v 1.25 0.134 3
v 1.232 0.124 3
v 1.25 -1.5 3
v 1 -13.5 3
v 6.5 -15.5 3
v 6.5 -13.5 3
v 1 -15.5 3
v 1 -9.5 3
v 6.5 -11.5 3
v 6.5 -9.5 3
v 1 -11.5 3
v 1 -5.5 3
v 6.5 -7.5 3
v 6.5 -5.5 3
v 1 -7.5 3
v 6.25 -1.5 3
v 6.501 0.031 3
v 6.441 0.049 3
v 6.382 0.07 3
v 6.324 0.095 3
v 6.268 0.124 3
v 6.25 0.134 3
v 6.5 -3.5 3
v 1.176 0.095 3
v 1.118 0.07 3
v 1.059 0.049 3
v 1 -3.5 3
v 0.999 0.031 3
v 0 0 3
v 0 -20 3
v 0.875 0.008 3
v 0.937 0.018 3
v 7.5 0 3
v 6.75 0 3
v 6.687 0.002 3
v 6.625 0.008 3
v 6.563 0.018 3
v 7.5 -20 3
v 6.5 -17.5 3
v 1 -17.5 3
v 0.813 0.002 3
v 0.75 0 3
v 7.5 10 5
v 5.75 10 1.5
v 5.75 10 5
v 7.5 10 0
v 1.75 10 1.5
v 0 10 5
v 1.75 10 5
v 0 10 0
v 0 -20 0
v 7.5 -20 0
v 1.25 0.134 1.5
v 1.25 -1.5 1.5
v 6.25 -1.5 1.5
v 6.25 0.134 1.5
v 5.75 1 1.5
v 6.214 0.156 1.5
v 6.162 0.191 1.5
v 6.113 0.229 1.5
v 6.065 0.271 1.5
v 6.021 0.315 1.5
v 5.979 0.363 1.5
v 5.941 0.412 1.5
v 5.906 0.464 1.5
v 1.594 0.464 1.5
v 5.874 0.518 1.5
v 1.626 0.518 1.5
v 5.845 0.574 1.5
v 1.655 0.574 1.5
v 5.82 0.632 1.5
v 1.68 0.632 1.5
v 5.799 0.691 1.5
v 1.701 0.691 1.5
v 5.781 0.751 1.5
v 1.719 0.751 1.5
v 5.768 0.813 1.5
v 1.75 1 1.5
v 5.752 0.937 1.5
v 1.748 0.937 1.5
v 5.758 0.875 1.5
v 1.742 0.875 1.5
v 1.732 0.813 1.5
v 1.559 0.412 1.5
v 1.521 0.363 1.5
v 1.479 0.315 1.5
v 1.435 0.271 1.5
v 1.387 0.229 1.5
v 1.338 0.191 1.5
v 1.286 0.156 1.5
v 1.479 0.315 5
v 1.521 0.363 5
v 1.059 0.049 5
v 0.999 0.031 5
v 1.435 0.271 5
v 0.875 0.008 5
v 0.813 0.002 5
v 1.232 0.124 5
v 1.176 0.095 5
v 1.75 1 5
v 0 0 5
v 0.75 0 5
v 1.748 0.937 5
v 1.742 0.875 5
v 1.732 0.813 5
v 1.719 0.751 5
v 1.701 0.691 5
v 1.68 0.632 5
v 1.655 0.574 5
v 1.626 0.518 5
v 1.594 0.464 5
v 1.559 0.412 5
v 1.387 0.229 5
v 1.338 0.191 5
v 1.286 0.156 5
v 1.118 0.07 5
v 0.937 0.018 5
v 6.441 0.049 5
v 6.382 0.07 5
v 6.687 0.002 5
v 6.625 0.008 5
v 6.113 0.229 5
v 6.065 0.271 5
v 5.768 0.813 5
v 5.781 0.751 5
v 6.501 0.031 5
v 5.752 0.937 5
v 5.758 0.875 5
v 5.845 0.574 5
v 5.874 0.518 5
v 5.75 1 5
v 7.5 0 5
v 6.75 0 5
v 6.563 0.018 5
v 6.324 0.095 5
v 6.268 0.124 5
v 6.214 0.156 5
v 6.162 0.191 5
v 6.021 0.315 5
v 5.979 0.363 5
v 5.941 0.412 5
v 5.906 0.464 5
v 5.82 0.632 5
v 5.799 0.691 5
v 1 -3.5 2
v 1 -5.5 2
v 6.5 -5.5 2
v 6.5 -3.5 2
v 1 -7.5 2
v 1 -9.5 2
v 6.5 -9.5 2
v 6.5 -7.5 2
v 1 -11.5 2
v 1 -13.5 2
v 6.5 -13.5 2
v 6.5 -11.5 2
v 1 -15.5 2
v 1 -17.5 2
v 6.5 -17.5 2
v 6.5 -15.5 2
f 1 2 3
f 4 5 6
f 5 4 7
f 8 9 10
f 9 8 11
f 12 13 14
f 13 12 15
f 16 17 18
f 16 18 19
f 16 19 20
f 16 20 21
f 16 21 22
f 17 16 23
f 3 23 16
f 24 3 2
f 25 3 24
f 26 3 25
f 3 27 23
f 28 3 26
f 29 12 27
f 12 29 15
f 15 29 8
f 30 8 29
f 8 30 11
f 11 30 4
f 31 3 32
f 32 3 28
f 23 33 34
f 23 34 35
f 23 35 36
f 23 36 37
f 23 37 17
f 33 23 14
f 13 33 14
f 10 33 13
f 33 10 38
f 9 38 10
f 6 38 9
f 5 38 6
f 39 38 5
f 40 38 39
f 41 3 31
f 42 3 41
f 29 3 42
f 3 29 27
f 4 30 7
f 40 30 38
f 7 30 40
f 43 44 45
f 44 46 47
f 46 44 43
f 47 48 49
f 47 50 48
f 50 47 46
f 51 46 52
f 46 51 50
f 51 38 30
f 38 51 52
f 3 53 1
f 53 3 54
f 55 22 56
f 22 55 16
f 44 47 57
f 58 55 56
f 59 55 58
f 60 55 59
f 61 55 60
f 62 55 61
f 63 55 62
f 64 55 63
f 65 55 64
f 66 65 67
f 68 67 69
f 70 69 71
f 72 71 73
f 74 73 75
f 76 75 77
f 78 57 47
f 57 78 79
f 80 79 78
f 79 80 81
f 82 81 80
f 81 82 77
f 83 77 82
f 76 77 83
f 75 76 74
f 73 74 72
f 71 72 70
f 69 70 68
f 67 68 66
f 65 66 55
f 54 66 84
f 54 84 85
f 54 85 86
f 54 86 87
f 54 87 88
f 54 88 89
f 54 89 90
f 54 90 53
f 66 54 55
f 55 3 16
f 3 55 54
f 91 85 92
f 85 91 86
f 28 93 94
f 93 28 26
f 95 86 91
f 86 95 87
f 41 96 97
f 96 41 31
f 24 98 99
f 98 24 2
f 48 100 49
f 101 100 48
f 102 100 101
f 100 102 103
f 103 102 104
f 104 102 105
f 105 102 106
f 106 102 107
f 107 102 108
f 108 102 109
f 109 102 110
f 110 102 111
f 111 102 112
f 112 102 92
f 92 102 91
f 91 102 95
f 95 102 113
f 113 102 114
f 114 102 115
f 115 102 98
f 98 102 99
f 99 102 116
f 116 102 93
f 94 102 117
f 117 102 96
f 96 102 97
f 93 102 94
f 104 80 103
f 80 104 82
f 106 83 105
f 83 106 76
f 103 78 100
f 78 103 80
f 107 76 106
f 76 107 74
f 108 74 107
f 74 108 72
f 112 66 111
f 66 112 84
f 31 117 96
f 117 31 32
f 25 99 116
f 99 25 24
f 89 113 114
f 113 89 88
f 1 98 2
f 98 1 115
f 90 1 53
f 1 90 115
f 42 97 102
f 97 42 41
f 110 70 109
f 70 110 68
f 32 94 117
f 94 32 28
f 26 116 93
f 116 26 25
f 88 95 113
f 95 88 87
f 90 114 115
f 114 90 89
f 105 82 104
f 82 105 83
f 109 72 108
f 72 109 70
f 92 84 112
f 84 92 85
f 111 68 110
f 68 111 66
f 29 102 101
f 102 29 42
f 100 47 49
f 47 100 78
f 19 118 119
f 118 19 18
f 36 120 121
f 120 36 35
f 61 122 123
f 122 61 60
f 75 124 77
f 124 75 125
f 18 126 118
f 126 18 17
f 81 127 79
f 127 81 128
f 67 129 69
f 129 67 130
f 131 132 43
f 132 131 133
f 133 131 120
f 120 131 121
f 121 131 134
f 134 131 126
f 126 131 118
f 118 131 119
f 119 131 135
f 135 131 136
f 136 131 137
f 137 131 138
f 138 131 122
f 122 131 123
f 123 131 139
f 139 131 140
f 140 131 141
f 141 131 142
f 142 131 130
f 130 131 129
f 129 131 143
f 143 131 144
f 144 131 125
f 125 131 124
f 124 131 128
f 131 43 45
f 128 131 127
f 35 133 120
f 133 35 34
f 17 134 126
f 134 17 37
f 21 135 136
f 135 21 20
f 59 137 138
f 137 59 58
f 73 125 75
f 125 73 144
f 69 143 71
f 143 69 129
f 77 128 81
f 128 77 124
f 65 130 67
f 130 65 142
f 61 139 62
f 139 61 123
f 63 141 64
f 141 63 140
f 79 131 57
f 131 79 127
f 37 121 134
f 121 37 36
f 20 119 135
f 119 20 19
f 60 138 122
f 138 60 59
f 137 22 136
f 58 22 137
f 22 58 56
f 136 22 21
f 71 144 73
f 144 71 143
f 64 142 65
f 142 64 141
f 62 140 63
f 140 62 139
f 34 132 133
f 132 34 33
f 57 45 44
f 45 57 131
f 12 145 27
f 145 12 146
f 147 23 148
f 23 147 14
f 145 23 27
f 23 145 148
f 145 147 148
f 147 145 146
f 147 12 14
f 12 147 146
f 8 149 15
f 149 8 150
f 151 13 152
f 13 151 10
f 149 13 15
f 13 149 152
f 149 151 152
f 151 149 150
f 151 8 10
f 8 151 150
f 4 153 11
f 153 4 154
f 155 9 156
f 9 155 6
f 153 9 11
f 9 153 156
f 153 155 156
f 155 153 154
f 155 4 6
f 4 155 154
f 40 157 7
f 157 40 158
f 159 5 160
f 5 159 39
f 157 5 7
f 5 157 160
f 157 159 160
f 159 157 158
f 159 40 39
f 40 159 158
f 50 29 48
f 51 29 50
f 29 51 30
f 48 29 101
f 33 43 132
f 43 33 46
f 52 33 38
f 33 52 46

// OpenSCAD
// LeadBender.scad -- Lead bender jig for 1/8 watt resistors and small signal diodes

// Copyright © 2017, Mike Ady
// This file is part of the open source Stenokey project.
// This file is licensed under the Creative Commons Attribution-ShareAlike license.

$fn=100;					// nice arcs

color("Silver")
	LeadBender();

module LeadBender()
{
	difference()
	{
		union()
		{
			// bending post

			translate([0.75,1,0])
				cylinder(r=1.0,h=5.0);
			translate([-0.25,0,0])
				cube([1,10,5]);
			translate([-0.25,1,0])
				cube([2,9,5]);

			// bending post
	
			translate([6.75,1,0])
				cylinder(r=1.0,h=5.0);
			translate([6.75,0,0])
				cube([1,10,5]);
			translate([5.75,1,0])
				cube([2,9,5]);

			difference()
			{
				// back plate

				translate([-0.5,-20,0])
					cube([8.5,30,3]);

				// recess for component
	
				translate([1.25,-1.5,1.5])
					cube([5.0,12,2]);
			}
		}
	
		// recesses for thumb grip

		for(i=[0:3])
		{
			translate([1.0,-5.5-4*i,2.0])
				cube([5.5,2,2]);
		}

		// shave off sides

		translate([-1.0,-20.5,-0.5])
			cube([1,31,6]);
		translate([7.5,-20.5,-0.5])
			cube([1,31,6]);
	}
}
